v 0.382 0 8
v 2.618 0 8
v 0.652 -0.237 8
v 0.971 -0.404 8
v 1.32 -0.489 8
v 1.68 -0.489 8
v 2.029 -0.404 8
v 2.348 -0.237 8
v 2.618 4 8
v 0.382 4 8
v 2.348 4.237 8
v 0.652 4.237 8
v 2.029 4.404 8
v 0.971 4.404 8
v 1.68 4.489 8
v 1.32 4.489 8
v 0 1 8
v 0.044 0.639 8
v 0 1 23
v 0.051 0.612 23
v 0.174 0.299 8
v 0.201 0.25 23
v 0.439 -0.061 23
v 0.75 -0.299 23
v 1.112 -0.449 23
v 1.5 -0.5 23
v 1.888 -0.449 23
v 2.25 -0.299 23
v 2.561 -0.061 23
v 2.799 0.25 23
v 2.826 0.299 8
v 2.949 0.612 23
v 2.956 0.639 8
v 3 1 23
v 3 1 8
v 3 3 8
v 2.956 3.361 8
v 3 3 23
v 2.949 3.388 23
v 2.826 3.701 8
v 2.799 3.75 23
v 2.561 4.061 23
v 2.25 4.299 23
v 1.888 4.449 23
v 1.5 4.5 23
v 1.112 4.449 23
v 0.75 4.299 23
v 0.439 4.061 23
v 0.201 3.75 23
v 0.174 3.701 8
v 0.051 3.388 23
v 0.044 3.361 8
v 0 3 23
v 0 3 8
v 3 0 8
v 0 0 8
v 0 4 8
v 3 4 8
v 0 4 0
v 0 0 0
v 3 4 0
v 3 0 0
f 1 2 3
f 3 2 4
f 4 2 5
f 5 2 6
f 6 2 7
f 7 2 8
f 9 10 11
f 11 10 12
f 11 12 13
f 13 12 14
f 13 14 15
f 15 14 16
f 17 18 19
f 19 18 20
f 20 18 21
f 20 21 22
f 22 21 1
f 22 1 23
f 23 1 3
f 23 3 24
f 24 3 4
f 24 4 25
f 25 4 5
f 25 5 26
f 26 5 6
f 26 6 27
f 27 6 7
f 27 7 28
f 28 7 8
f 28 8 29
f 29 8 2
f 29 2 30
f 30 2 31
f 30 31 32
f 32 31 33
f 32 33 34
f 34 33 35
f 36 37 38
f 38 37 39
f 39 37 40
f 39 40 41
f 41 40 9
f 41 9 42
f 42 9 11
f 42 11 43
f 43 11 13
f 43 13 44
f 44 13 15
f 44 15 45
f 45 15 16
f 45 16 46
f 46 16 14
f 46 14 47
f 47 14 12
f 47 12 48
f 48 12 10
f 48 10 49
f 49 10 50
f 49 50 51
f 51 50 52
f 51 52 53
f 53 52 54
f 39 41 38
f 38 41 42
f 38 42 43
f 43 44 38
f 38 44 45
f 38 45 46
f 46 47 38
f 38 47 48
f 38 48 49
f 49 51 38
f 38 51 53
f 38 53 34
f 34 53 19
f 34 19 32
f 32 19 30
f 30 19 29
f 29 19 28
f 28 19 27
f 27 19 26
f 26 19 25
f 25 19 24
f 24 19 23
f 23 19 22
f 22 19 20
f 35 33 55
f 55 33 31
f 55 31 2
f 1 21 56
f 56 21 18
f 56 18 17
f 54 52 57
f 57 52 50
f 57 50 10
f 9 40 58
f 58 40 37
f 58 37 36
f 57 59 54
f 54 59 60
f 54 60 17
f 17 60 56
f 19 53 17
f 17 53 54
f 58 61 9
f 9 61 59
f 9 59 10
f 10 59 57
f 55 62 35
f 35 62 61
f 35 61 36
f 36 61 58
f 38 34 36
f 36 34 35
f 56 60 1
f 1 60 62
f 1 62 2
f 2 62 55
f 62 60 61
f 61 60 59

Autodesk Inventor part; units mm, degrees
ref_plane "YZ Plane" through (0, 0, 0) normal (1, 0, 0) x (0, 1, 0)
ref_plane "XZ Plane" through (0, 0, 0) normal (0, 1, 0) x (-1, 0, 0)
ref_plane "XY Plane" through (0, 0, 0) normal (0, 0, 1) x (1, 0, 0)
sketch "Sketch1" plane through (0, 0, 0) normal (0, 0, 1) x (1, 0, 0)
  line L0 (0, 0) -> (3, 0)
  line L1 (3, 0) -> (3, 4)
  line L2 (3, 4) -> (0, 4)
  line L3 (0, 4) -> (0, 0)
  dimension "d0" = 3
  dimension "d1" = 4
extrude "Extrusion1" add sketch "Sketch1" along normal blind 4
sketch "Sketch2" plane through (0, 0, 4) normal (0, 0, 1) x (1, 0, 0)
  line L0 (0, 0) -> (3, 0)
  line L1 (3, 0) -> (3, 4)
  line L2 (3, 4) -> (0, 4)
  line L3 (0, 4) -> (0, 0)
  dimension "d4" = 3
  dimension "d5" = 4
extrude "Extrusion2" add sketch "Sketch2" along normal blind 4
sketch "Sketch3" plane through (0, 0, 8) normal (0, 0, 1) x (1, 0, 0)
  line L0 (1.5, -0.5) -> (1.5, -0.5)
  line L1 (3, 1) -> (3, 3)
  line L2 (1.5, 4.5) -> (1.5, 4.5)
  line L3 (0, 3) -> (0, 1)
  arc A0 (1.5, 4.5) -> (0, 3) centre (1.5, 3) ccw
  arc A1 (0, 1) -> (1.5, -0.5) centre (1.5, 1) ccw
  arc A2 (1.5, -0.5) -> (3, 1) centre (1.5, 1) ccw
  arc A3 (3, 3) -> (1.5, 4.5) centre (1.5, 3) ccw
  point P0 (0, 0)
  point P1 (3, 4.5)
  point P2 (3, -0.5)
  point P3 (0, 4.5)
  dimension "d8" = 3
  dimension "d9" = 5
  dimension "d10" = 1.5
  dimension "d11" = 1.5
extrude "Extrusion3" add sketch "Sketch3" along normal blind 15
properties part number "button_press"
